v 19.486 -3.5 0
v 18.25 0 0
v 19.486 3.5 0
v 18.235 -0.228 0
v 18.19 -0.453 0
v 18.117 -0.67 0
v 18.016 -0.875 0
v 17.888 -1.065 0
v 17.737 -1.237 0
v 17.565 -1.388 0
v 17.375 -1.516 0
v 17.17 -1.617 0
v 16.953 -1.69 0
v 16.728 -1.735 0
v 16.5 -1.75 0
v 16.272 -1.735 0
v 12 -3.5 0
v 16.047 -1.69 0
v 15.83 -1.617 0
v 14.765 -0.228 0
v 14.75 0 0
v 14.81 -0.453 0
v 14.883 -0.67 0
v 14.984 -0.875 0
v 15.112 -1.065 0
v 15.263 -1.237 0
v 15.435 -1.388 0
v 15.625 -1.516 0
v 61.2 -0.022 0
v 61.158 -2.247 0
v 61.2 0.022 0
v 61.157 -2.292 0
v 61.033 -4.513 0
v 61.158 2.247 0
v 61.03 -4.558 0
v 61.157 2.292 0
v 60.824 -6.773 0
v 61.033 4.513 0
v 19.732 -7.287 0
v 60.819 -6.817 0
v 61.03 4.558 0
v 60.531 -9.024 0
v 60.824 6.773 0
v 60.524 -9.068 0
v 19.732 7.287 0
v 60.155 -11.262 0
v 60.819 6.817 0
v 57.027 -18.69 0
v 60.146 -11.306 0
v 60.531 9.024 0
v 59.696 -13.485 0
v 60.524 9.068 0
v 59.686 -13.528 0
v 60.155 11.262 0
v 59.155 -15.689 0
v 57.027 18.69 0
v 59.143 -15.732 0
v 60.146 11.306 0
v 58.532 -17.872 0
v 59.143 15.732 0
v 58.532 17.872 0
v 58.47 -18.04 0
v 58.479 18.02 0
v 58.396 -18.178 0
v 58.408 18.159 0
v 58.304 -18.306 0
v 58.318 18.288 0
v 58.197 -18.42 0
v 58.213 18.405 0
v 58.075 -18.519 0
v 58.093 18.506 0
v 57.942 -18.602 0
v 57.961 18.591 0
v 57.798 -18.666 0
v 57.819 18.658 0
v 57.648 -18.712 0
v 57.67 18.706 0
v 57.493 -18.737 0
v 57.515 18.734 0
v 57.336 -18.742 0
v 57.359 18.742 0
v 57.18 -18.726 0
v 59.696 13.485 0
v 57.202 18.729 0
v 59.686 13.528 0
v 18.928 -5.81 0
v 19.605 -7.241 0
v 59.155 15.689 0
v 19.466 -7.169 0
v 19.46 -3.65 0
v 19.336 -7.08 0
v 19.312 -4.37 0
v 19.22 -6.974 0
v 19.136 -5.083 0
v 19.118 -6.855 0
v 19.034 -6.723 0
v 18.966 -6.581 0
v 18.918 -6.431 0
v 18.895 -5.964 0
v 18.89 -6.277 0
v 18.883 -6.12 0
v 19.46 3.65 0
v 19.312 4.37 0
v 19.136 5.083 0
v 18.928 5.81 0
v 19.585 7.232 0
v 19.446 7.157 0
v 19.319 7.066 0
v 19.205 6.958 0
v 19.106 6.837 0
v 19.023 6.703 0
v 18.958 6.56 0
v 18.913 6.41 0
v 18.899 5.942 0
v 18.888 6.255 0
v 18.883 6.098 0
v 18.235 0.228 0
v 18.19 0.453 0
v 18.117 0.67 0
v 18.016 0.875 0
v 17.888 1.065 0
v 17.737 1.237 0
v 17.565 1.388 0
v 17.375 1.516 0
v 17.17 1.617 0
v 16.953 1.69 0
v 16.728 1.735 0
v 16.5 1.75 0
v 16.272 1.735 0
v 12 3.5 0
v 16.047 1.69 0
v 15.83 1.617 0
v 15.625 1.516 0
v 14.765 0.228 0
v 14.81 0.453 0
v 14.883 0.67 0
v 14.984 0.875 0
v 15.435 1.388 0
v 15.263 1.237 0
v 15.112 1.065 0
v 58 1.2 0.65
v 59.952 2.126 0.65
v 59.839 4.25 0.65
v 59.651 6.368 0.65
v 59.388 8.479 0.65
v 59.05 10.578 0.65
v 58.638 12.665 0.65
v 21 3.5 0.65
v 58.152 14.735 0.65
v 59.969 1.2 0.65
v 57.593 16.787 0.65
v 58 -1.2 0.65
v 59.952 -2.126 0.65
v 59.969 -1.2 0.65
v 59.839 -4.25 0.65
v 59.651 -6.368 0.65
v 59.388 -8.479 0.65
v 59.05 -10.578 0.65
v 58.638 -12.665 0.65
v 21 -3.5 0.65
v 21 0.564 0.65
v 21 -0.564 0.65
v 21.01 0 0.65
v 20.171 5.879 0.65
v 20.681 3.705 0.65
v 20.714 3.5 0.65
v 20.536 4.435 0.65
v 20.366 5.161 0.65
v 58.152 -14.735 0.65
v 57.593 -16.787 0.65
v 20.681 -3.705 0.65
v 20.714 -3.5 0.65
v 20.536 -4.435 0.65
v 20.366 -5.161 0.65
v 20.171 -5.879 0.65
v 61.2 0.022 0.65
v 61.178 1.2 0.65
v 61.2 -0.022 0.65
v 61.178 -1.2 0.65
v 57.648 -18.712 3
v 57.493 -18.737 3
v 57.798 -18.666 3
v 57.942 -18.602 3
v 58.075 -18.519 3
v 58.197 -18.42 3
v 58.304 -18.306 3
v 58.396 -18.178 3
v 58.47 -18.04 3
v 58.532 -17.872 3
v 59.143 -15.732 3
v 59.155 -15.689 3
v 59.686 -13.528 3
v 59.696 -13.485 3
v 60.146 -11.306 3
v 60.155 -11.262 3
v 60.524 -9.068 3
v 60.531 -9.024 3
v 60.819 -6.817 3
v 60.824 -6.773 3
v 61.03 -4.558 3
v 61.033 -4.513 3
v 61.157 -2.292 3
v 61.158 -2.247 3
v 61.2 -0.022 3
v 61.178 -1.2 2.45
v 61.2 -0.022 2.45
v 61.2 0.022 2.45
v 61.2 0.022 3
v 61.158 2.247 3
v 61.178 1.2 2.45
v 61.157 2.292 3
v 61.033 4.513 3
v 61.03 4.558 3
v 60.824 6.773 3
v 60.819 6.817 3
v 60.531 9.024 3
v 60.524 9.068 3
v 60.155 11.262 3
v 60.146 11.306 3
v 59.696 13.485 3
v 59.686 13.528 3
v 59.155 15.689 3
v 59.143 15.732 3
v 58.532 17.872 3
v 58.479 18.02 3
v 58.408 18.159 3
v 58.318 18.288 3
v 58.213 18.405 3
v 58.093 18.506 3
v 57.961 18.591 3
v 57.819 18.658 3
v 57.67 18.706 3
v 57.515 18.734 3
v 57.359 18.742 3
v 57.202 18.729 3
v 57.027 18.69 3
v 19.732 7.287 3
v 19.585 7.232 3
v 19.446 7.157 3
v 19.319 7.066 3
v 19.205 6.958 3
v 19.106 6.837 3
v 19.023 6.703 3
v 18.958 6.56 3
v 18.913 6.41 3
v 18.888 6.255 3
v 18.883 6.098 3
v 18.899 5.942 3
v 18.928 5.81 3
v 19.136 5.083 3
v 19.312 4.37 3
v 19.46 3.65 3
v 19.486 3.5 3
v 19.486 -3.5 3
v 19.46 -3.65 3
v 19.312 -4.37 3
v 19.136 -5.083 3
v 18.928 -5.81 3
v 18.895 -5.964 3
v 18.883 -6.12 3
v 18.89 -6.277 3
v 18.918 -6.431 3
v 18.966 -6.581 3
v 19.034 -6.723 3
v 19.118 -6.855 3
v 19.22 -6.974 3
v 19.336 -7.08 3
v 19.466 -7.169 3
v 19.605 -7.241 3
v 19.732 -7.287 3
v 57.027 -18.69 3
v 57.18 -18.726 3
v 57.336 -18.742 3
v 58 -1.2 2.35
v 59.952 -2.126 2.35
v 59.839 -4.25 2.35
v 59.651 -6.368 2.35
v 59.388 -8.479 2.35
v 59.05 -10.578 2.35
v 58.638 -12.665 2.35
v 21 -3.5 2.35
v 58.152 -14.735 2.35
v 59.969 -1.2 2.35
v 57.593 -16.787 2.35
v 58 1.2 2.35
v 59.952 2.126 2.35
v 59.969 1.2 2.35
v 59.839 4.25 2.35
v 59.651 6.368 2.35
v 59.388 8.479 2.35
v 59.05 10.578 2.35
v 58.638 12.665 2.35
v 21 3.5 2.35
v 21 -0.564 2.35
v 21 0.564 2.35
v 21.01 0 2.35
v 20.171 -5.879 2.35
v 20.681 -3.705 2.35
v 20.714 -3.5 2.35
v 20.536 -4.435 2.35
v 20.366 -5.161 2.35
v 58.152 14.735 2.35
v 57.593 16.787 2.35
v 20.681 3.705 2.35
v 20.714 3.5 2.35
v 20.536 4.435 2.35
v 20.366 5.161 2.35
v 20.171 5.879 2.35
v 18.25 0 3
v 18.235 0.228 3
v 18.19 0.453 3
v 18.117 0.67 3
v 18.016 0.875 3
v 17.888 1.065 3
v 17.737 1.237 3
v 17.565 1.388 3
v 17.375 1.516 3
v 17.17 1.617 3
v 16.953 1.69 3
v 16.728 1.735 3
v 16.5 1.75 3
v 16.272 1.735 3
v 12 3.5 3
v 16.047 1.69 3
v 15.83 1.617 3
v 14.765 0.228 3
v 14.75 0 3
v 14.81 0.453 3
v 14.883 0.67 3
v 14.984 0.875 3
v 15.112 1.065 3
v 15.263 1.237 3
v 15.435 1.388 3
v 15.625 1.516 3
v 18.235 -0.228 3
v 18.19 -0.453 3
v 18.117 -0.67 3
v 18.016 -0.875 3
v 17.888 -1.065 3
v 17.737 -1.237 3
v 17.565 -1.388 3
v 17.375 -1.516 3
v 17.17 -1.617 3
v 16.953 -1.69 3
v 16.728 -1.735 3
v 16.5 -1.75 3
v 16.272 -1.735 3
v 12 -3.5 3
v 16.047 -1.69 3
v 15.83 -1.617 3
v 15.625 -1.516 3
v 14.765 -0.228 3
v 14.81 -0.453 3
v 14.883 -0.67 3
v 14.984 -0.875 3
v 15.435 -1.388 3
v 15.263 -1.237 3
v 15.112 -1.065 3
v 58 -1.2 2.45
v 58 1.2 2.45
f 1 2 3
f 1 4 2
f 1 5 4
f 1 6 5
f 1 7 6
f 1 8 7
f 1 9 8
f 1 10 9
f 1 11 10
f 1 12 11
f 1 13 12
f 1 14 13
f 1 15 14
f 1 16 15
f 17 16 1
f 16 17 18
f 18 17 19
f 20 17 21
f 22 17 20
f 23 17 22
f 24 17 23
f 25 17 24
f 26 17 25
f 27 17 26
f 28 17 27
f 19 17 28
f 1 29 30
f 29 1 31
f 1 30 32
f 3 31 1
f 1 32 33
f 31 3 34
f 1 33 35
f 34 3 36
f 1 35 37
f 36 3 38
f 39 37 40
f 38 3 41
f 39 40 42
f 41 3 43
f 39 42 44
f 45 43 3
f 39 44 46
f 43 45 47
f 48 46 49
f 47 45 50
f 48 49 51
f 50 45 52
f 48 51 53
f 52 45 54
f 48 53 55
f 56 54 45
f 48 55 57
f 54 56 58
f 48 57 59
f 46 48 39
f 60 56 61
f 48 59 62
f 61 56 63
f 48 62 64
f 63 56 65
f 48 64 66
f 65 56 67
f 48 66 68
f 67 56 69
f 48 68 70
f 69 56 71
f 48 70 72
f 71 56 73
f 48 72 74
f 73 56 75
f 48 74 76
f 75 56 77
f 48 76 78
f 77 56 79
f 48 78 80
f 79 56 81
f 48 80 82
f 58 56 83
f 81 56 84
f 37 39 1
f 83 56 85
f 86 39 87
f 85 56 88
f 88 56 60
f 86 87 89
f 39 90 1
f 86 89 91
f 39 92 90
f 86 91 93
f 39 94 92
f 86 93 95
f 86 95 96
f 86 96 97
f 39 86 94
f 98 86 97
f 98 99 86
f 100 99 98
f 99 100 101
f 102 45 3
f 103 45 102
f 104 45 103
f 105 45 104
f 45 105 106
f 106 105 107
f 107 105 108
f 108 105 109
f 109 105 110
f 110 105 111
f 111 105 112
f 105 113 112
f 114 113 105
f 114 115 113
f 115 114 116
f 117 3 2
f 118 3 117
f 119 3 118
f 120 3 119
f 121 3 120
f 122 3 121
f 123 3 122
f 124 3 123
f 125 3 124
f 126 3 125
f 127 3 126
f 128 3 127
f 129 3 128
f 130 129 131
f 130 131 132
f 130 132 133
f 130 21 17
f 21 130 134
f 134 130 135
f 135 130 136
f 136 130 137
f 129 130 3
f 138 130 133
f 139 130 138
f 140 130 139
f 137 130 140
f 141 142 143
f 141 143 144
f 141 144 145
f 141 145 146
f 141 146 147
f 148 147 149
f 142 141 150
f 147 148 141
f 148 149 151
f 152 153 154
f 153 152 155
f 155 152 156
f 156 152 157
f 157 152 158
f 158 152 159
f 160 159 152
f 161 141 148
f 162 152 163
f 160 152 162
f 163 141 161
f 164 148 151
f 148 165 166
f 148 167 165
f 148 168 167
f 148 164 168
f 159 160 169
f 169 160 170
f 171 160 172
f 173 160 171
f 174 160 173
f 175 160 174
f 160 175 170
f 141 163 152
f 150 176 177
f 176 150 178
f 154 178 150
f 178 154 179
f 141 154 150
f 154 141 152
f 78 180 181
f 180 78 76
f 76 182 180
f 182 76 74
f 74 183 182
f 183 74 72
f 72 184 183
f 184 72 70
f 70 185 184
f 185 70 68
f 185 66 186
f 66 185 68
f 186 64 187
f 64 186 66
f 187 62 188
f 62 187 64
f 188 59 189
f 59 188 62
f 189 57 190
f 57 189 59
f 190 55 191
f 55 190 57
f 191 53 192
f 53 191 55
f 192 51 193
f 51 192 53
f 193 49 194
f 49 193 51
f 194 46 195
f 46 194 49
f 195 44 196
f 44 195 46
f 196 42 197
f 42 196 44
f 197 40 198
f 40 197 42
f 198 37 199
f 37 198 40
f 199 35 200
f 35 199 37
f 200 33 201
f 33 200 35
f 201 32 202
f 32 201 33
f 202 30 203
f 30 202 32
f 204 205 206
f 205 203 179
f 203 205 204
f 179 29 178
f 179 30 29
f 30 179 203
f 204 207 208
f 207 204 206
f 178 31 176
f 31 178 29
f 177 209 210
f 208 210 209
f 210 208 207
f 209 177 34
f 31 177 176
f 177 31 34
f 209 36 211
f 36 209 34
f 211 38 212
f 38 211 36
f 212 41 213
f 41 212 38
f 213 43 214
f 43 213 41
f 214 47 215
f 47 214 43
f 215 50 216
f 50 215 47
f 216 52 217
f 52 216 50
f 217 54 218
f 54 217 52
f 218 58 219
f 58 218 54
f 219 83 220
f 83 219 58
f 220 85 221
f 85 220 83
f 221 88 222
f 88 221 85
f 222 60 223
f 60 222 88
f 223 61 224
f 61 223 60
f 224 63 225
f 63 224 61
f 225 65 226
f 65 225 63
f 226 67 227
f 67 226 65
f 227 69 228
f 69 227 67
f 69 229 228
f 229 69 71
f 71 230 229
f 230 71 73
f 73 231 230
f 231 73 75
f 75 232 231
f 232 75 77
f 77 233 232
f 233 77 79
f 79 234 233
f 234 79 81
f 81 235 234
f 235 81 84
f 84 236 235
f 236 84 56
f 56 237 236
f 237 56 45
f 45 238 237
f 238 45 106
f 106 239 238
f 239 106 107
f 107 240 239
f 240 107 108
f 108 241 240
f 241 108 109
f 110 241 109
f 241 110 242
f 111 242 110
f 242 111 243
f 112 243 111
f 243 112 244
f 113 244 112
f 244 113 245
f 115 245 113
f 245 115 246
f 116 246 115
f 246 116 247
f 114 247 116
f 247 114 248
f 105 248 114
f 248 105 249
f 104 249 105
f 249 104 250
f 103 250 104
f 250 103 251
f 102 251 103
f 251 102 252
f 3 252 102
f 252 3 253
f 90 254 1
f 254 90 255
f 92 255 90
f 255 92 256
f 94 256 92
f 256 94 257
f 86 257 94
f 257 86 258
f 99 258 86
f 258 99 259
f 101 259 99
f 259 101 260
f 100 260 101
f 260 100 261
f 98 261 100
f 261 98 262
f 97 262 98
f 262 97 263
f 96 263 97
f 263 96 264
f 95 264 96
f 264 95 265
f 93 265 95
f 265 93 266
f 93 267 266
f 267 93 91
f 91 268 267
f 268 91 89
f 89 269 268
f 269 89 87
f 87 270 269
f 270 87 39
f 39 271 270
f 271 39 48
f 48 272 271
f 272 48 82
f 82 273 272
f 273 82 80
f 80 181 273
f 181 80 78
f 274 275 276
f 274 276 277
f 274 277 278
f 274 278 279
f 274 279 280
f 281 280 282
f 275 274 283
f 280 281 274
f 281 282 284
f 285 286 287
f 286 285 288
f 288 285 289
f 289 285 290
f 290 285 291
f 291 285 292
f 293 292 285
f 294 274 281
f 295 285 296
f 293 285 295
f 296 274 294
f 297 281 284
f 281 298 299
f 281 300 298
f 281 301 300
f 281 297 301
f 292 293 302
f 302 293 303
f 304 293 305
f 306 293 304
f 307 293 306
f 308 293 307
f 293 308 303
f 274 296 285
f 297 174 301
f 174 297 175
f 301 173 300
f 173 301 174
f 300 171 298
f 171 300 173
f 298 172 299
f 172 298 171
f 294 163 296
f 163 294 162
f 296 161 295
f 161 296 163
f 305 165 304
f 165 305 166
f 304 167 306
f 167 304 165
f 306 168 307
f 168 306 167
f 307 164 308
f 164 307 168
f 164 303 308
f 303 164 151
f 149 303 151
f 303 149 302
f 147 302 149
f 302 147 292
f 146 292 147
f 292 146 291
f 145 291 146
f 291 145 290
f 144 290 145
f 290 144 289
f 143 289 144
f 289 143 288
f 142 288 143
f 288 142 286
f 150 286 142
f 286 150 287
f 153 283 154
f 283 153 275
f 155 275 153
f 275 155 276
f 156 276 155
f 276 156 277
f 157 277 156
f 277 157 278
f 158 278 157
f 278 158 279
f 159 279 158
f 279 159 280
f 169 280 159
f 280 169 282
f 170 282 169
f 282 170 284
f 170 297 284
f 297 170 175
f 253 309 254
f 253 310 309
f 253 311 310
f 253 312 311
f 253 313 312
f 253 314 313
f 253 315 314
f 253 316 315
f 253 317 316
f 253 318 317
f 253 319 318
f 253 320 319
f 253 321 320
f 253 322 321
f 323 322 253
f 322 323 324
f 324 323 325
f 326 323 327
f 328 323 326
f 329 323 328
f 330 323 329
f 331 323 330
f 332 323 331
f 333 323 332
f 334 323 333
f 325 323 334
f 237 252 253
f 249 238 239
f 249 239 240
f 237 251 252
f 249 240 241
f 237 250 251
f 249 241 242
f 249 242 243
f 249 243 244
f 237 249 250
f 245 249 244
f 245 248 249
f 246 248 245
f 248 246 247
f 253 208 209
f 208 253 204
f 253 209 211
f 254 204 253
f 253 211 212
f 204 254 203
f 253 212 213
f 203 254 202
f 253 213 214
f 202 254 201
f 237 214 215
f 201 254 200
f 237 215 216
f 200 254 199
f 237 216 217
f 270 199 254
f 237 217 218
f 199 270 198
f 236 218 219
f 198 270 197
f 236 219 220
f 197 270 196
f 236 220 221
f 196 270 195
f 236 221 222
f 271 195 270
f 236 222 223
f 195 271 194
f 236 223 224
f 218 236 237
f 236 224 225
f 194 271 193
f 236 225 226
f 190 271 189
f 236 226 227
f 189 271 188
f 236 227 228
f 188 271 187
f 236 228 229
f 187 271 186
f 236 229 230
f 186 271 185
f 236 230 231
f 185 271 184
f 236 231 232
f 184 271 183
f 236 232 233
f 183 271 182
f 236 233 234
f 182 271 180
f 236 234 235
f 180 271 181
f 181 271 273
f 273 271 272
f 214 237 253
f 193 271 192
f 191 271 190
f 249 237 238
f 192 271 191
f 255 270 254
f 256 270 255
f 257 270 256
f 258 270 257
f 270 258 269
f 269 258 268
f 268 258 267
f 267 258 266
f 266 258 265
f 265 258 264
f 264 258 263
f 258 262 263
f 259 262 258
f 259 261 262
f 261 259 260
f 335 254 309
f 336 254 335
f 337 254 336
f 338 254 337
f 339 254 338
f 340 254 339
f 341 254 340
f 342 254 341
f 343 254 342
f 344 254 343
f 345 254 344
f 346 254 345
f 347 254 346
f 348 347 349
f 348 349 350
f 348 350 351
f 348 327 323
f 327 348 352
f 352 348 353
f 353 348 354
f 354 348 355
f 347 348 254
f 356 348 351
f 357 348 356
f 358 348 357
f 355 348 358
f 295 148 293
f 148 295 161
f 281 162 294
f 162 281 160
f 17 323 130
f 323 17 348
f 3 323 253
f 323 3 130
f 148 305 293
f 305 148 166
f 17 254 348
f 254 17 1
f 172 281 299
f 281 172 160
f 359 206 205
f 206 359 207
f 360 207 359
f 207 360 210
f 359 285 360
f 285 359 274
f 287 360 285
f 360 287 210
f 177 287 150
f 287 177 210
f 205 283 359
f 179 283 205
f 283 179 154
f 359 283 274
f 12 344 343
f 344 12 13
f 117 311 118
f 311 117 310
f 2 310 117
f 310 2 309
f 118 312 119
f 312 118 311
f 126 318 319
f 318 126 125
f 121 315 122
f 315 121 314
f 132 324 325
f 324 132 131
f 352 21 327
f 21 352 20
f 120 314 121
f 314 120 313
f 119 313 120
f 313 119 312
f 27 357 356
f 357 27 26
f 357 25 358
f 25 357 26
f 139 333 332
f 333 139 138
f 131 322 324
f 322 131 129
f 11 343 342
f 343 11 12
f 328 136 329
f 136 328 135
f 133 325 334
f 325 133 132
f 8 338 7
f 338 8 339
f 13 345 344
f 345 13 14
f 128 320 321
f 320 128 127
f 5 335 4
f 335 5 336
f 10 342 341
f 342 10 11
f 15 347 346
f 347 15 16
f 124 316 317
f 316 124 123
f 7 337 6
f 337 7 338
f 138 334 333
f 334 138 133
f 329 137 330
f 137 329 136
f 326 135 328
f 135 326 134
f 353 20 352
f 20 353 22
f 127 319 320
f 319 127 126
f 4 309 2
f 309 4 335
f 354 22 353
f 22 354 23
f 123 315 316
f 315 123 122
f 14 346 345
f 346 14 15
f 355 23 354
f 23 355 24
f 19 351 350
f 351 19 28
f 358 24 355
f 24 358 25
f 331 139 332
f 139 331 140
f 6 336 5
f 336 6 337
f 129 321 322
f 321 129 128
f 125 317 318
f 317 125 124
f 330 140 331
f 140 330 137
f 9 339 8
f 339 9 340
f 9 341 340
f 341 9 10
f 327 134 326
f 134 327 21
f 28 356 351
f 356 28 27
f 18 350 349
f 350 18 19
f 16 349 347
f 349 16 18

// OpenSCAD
// file: parameters.scad
// =============================================================================
// Gen-AC Stacked dual-gap / mid-stator Halbach intensifier — WOUND-AWARE
// TWO wound pancake stators | ONE mid dual-face Halbach rotor | outer endbells
// Beats Gen-Z: thinner m2m, larger copper window, 125 t / coil
// =============================================================================

wire_awg            = 26;
wire_od             = 0.45;
turns               = 125;      // 9 coils/stator ×2 = 18 ×125 ×~0.115 ≈ 259 m
fill                = 0.70;
layers_per_face     = 2;
wind_build_axial    = layers_per_face * wire_od * fill;   // 0.63
wind_build_radial   = 2.8 * wire_od * fill;               // 0.882

coil_id_r           = 21.0;     // larger than Gen-Z 22–58
coil_od_r           = 60.0;
span_deg            = 34.0;     // 9 stations × 40°
former_web          = 1.7;
flange_t            = 0.65;
wall                = 1.2;
slot_w              = 2.4;
mount_hole          = 3.5;
tab_len             = 7.0;

former_bare_h       = former_web + 2 * flange_t;            // 3.0
coil_envelope_h     = former_bare_h + 2 * wind_build_axial; // 4.26

run_clear           = 0.60;
gap_spacer_h        = run_clear + wind_build_axial;         // 1.23
m2m                 = coil_envelope_h + 2 * run_clear;      // 5.46 per gap (beats Gen-Z 5.86)

coil_stations       = 9;        // per stator; ×2 = 18 total
bay_r_in            = coil_id_r - 2.0 - wind_build_radial;
bay_r_out           = coil_od_r + 2.0 + wind_build_radial;
bay_span            = span_deg + 4.0;
bay_offset          = 2.0;
bay_depth           = former_bare_h + wind_build_axial;
stator_back_web     = 2.0;
stator_thick        = bay_depth + stator_back_web;
stator_od           = 156.0;
shaft_clear_stator  = 40.0;
coil_mount_r        = 30.0;

large_pocket_d      = 20.3;
small_pocket_d      = 5.3;
pocket_h            = 5.2;
large_n             = 8;
R_large             = 52.0;
R_small_inner       = 40.0;
R_small_mid         = 52.0;
R_small_outer       = 64.0;
carrier_od          = 152.0;
mid_carrier_thick   = 12.0;
hub_h               = 10.0;
hub_od              = 30.0;
rotor_b_offset_deg  = 22.5;

shaft_bore          = 8.35;
bearing_d           = 21.85;
bearing_h           = 7.2;
m3_clear            = 3.5;
bolt_r_inner        = 36.0;
bolt_n_inner        = 6;
flange_bolt_r       = 72.0;
flange_bolt_n       = 6;
brace_r             = 68.0;
brace_d             = 4.3;
brace_n             = 4;

spacer_pad_od       = 14.0;
spacer_pad_id       = m3_clear;
endbell_od          = 156.0;
endbell_thick       = 8.0;
endbell_shaft_clear = 10.0;

$fn = 64;
// main file
// Gen-AC pancake former — print ×18
// WOUND: wind_build_axial computed in parameters.scad; wind BEFORE assembly
include <parameters.scad>;
$fn = 48;

module sector_2d(r_in, r_out, ang) {
    polygon([
        for (a = [-ang/2 : ang/16 : ang/2]) [r_in*cos(a), r_in*sin(a)],
        for (a = [ang/2 : -ang/16 : -ang/2]) [r_out*cos(a), r_out*sin(a)]
    ]);
}
module flange() {
    linear_extrude(flange_t) offset(r=wall) sector_2d(coil_id_r, coil_od_r, span_deg);
}
difference() {
    union() {
        flange();
        translate([0, 0, flange_t])
            linear_extrude(former_web)
                difference() {
                    offset(r=wall) sector_2d(coil_id_r, coil_od_r, span_deg);
                    sector_2d(coil_id_r + 0.01, coil_od_r - 0.01, span_deg - 1.5);
                }
        translate([0, 0, flange_t + former_web]) flange();
        translate([coil_id_r - tab_len - 2, -3.5, 0])
            cube([tab_len + 2, 7, former_bare_h]);
    }
    translate([coil_od_r - 2, -slot_w/2, flange_t])
        cube([wall + 4, slot_w, former_web + 0.1]);
    translate([coil_id_r - tab_len/2 - 1, 0, -0.1])
        cylinder(d=mount_hole, h=former_bare_h + 1);
}
